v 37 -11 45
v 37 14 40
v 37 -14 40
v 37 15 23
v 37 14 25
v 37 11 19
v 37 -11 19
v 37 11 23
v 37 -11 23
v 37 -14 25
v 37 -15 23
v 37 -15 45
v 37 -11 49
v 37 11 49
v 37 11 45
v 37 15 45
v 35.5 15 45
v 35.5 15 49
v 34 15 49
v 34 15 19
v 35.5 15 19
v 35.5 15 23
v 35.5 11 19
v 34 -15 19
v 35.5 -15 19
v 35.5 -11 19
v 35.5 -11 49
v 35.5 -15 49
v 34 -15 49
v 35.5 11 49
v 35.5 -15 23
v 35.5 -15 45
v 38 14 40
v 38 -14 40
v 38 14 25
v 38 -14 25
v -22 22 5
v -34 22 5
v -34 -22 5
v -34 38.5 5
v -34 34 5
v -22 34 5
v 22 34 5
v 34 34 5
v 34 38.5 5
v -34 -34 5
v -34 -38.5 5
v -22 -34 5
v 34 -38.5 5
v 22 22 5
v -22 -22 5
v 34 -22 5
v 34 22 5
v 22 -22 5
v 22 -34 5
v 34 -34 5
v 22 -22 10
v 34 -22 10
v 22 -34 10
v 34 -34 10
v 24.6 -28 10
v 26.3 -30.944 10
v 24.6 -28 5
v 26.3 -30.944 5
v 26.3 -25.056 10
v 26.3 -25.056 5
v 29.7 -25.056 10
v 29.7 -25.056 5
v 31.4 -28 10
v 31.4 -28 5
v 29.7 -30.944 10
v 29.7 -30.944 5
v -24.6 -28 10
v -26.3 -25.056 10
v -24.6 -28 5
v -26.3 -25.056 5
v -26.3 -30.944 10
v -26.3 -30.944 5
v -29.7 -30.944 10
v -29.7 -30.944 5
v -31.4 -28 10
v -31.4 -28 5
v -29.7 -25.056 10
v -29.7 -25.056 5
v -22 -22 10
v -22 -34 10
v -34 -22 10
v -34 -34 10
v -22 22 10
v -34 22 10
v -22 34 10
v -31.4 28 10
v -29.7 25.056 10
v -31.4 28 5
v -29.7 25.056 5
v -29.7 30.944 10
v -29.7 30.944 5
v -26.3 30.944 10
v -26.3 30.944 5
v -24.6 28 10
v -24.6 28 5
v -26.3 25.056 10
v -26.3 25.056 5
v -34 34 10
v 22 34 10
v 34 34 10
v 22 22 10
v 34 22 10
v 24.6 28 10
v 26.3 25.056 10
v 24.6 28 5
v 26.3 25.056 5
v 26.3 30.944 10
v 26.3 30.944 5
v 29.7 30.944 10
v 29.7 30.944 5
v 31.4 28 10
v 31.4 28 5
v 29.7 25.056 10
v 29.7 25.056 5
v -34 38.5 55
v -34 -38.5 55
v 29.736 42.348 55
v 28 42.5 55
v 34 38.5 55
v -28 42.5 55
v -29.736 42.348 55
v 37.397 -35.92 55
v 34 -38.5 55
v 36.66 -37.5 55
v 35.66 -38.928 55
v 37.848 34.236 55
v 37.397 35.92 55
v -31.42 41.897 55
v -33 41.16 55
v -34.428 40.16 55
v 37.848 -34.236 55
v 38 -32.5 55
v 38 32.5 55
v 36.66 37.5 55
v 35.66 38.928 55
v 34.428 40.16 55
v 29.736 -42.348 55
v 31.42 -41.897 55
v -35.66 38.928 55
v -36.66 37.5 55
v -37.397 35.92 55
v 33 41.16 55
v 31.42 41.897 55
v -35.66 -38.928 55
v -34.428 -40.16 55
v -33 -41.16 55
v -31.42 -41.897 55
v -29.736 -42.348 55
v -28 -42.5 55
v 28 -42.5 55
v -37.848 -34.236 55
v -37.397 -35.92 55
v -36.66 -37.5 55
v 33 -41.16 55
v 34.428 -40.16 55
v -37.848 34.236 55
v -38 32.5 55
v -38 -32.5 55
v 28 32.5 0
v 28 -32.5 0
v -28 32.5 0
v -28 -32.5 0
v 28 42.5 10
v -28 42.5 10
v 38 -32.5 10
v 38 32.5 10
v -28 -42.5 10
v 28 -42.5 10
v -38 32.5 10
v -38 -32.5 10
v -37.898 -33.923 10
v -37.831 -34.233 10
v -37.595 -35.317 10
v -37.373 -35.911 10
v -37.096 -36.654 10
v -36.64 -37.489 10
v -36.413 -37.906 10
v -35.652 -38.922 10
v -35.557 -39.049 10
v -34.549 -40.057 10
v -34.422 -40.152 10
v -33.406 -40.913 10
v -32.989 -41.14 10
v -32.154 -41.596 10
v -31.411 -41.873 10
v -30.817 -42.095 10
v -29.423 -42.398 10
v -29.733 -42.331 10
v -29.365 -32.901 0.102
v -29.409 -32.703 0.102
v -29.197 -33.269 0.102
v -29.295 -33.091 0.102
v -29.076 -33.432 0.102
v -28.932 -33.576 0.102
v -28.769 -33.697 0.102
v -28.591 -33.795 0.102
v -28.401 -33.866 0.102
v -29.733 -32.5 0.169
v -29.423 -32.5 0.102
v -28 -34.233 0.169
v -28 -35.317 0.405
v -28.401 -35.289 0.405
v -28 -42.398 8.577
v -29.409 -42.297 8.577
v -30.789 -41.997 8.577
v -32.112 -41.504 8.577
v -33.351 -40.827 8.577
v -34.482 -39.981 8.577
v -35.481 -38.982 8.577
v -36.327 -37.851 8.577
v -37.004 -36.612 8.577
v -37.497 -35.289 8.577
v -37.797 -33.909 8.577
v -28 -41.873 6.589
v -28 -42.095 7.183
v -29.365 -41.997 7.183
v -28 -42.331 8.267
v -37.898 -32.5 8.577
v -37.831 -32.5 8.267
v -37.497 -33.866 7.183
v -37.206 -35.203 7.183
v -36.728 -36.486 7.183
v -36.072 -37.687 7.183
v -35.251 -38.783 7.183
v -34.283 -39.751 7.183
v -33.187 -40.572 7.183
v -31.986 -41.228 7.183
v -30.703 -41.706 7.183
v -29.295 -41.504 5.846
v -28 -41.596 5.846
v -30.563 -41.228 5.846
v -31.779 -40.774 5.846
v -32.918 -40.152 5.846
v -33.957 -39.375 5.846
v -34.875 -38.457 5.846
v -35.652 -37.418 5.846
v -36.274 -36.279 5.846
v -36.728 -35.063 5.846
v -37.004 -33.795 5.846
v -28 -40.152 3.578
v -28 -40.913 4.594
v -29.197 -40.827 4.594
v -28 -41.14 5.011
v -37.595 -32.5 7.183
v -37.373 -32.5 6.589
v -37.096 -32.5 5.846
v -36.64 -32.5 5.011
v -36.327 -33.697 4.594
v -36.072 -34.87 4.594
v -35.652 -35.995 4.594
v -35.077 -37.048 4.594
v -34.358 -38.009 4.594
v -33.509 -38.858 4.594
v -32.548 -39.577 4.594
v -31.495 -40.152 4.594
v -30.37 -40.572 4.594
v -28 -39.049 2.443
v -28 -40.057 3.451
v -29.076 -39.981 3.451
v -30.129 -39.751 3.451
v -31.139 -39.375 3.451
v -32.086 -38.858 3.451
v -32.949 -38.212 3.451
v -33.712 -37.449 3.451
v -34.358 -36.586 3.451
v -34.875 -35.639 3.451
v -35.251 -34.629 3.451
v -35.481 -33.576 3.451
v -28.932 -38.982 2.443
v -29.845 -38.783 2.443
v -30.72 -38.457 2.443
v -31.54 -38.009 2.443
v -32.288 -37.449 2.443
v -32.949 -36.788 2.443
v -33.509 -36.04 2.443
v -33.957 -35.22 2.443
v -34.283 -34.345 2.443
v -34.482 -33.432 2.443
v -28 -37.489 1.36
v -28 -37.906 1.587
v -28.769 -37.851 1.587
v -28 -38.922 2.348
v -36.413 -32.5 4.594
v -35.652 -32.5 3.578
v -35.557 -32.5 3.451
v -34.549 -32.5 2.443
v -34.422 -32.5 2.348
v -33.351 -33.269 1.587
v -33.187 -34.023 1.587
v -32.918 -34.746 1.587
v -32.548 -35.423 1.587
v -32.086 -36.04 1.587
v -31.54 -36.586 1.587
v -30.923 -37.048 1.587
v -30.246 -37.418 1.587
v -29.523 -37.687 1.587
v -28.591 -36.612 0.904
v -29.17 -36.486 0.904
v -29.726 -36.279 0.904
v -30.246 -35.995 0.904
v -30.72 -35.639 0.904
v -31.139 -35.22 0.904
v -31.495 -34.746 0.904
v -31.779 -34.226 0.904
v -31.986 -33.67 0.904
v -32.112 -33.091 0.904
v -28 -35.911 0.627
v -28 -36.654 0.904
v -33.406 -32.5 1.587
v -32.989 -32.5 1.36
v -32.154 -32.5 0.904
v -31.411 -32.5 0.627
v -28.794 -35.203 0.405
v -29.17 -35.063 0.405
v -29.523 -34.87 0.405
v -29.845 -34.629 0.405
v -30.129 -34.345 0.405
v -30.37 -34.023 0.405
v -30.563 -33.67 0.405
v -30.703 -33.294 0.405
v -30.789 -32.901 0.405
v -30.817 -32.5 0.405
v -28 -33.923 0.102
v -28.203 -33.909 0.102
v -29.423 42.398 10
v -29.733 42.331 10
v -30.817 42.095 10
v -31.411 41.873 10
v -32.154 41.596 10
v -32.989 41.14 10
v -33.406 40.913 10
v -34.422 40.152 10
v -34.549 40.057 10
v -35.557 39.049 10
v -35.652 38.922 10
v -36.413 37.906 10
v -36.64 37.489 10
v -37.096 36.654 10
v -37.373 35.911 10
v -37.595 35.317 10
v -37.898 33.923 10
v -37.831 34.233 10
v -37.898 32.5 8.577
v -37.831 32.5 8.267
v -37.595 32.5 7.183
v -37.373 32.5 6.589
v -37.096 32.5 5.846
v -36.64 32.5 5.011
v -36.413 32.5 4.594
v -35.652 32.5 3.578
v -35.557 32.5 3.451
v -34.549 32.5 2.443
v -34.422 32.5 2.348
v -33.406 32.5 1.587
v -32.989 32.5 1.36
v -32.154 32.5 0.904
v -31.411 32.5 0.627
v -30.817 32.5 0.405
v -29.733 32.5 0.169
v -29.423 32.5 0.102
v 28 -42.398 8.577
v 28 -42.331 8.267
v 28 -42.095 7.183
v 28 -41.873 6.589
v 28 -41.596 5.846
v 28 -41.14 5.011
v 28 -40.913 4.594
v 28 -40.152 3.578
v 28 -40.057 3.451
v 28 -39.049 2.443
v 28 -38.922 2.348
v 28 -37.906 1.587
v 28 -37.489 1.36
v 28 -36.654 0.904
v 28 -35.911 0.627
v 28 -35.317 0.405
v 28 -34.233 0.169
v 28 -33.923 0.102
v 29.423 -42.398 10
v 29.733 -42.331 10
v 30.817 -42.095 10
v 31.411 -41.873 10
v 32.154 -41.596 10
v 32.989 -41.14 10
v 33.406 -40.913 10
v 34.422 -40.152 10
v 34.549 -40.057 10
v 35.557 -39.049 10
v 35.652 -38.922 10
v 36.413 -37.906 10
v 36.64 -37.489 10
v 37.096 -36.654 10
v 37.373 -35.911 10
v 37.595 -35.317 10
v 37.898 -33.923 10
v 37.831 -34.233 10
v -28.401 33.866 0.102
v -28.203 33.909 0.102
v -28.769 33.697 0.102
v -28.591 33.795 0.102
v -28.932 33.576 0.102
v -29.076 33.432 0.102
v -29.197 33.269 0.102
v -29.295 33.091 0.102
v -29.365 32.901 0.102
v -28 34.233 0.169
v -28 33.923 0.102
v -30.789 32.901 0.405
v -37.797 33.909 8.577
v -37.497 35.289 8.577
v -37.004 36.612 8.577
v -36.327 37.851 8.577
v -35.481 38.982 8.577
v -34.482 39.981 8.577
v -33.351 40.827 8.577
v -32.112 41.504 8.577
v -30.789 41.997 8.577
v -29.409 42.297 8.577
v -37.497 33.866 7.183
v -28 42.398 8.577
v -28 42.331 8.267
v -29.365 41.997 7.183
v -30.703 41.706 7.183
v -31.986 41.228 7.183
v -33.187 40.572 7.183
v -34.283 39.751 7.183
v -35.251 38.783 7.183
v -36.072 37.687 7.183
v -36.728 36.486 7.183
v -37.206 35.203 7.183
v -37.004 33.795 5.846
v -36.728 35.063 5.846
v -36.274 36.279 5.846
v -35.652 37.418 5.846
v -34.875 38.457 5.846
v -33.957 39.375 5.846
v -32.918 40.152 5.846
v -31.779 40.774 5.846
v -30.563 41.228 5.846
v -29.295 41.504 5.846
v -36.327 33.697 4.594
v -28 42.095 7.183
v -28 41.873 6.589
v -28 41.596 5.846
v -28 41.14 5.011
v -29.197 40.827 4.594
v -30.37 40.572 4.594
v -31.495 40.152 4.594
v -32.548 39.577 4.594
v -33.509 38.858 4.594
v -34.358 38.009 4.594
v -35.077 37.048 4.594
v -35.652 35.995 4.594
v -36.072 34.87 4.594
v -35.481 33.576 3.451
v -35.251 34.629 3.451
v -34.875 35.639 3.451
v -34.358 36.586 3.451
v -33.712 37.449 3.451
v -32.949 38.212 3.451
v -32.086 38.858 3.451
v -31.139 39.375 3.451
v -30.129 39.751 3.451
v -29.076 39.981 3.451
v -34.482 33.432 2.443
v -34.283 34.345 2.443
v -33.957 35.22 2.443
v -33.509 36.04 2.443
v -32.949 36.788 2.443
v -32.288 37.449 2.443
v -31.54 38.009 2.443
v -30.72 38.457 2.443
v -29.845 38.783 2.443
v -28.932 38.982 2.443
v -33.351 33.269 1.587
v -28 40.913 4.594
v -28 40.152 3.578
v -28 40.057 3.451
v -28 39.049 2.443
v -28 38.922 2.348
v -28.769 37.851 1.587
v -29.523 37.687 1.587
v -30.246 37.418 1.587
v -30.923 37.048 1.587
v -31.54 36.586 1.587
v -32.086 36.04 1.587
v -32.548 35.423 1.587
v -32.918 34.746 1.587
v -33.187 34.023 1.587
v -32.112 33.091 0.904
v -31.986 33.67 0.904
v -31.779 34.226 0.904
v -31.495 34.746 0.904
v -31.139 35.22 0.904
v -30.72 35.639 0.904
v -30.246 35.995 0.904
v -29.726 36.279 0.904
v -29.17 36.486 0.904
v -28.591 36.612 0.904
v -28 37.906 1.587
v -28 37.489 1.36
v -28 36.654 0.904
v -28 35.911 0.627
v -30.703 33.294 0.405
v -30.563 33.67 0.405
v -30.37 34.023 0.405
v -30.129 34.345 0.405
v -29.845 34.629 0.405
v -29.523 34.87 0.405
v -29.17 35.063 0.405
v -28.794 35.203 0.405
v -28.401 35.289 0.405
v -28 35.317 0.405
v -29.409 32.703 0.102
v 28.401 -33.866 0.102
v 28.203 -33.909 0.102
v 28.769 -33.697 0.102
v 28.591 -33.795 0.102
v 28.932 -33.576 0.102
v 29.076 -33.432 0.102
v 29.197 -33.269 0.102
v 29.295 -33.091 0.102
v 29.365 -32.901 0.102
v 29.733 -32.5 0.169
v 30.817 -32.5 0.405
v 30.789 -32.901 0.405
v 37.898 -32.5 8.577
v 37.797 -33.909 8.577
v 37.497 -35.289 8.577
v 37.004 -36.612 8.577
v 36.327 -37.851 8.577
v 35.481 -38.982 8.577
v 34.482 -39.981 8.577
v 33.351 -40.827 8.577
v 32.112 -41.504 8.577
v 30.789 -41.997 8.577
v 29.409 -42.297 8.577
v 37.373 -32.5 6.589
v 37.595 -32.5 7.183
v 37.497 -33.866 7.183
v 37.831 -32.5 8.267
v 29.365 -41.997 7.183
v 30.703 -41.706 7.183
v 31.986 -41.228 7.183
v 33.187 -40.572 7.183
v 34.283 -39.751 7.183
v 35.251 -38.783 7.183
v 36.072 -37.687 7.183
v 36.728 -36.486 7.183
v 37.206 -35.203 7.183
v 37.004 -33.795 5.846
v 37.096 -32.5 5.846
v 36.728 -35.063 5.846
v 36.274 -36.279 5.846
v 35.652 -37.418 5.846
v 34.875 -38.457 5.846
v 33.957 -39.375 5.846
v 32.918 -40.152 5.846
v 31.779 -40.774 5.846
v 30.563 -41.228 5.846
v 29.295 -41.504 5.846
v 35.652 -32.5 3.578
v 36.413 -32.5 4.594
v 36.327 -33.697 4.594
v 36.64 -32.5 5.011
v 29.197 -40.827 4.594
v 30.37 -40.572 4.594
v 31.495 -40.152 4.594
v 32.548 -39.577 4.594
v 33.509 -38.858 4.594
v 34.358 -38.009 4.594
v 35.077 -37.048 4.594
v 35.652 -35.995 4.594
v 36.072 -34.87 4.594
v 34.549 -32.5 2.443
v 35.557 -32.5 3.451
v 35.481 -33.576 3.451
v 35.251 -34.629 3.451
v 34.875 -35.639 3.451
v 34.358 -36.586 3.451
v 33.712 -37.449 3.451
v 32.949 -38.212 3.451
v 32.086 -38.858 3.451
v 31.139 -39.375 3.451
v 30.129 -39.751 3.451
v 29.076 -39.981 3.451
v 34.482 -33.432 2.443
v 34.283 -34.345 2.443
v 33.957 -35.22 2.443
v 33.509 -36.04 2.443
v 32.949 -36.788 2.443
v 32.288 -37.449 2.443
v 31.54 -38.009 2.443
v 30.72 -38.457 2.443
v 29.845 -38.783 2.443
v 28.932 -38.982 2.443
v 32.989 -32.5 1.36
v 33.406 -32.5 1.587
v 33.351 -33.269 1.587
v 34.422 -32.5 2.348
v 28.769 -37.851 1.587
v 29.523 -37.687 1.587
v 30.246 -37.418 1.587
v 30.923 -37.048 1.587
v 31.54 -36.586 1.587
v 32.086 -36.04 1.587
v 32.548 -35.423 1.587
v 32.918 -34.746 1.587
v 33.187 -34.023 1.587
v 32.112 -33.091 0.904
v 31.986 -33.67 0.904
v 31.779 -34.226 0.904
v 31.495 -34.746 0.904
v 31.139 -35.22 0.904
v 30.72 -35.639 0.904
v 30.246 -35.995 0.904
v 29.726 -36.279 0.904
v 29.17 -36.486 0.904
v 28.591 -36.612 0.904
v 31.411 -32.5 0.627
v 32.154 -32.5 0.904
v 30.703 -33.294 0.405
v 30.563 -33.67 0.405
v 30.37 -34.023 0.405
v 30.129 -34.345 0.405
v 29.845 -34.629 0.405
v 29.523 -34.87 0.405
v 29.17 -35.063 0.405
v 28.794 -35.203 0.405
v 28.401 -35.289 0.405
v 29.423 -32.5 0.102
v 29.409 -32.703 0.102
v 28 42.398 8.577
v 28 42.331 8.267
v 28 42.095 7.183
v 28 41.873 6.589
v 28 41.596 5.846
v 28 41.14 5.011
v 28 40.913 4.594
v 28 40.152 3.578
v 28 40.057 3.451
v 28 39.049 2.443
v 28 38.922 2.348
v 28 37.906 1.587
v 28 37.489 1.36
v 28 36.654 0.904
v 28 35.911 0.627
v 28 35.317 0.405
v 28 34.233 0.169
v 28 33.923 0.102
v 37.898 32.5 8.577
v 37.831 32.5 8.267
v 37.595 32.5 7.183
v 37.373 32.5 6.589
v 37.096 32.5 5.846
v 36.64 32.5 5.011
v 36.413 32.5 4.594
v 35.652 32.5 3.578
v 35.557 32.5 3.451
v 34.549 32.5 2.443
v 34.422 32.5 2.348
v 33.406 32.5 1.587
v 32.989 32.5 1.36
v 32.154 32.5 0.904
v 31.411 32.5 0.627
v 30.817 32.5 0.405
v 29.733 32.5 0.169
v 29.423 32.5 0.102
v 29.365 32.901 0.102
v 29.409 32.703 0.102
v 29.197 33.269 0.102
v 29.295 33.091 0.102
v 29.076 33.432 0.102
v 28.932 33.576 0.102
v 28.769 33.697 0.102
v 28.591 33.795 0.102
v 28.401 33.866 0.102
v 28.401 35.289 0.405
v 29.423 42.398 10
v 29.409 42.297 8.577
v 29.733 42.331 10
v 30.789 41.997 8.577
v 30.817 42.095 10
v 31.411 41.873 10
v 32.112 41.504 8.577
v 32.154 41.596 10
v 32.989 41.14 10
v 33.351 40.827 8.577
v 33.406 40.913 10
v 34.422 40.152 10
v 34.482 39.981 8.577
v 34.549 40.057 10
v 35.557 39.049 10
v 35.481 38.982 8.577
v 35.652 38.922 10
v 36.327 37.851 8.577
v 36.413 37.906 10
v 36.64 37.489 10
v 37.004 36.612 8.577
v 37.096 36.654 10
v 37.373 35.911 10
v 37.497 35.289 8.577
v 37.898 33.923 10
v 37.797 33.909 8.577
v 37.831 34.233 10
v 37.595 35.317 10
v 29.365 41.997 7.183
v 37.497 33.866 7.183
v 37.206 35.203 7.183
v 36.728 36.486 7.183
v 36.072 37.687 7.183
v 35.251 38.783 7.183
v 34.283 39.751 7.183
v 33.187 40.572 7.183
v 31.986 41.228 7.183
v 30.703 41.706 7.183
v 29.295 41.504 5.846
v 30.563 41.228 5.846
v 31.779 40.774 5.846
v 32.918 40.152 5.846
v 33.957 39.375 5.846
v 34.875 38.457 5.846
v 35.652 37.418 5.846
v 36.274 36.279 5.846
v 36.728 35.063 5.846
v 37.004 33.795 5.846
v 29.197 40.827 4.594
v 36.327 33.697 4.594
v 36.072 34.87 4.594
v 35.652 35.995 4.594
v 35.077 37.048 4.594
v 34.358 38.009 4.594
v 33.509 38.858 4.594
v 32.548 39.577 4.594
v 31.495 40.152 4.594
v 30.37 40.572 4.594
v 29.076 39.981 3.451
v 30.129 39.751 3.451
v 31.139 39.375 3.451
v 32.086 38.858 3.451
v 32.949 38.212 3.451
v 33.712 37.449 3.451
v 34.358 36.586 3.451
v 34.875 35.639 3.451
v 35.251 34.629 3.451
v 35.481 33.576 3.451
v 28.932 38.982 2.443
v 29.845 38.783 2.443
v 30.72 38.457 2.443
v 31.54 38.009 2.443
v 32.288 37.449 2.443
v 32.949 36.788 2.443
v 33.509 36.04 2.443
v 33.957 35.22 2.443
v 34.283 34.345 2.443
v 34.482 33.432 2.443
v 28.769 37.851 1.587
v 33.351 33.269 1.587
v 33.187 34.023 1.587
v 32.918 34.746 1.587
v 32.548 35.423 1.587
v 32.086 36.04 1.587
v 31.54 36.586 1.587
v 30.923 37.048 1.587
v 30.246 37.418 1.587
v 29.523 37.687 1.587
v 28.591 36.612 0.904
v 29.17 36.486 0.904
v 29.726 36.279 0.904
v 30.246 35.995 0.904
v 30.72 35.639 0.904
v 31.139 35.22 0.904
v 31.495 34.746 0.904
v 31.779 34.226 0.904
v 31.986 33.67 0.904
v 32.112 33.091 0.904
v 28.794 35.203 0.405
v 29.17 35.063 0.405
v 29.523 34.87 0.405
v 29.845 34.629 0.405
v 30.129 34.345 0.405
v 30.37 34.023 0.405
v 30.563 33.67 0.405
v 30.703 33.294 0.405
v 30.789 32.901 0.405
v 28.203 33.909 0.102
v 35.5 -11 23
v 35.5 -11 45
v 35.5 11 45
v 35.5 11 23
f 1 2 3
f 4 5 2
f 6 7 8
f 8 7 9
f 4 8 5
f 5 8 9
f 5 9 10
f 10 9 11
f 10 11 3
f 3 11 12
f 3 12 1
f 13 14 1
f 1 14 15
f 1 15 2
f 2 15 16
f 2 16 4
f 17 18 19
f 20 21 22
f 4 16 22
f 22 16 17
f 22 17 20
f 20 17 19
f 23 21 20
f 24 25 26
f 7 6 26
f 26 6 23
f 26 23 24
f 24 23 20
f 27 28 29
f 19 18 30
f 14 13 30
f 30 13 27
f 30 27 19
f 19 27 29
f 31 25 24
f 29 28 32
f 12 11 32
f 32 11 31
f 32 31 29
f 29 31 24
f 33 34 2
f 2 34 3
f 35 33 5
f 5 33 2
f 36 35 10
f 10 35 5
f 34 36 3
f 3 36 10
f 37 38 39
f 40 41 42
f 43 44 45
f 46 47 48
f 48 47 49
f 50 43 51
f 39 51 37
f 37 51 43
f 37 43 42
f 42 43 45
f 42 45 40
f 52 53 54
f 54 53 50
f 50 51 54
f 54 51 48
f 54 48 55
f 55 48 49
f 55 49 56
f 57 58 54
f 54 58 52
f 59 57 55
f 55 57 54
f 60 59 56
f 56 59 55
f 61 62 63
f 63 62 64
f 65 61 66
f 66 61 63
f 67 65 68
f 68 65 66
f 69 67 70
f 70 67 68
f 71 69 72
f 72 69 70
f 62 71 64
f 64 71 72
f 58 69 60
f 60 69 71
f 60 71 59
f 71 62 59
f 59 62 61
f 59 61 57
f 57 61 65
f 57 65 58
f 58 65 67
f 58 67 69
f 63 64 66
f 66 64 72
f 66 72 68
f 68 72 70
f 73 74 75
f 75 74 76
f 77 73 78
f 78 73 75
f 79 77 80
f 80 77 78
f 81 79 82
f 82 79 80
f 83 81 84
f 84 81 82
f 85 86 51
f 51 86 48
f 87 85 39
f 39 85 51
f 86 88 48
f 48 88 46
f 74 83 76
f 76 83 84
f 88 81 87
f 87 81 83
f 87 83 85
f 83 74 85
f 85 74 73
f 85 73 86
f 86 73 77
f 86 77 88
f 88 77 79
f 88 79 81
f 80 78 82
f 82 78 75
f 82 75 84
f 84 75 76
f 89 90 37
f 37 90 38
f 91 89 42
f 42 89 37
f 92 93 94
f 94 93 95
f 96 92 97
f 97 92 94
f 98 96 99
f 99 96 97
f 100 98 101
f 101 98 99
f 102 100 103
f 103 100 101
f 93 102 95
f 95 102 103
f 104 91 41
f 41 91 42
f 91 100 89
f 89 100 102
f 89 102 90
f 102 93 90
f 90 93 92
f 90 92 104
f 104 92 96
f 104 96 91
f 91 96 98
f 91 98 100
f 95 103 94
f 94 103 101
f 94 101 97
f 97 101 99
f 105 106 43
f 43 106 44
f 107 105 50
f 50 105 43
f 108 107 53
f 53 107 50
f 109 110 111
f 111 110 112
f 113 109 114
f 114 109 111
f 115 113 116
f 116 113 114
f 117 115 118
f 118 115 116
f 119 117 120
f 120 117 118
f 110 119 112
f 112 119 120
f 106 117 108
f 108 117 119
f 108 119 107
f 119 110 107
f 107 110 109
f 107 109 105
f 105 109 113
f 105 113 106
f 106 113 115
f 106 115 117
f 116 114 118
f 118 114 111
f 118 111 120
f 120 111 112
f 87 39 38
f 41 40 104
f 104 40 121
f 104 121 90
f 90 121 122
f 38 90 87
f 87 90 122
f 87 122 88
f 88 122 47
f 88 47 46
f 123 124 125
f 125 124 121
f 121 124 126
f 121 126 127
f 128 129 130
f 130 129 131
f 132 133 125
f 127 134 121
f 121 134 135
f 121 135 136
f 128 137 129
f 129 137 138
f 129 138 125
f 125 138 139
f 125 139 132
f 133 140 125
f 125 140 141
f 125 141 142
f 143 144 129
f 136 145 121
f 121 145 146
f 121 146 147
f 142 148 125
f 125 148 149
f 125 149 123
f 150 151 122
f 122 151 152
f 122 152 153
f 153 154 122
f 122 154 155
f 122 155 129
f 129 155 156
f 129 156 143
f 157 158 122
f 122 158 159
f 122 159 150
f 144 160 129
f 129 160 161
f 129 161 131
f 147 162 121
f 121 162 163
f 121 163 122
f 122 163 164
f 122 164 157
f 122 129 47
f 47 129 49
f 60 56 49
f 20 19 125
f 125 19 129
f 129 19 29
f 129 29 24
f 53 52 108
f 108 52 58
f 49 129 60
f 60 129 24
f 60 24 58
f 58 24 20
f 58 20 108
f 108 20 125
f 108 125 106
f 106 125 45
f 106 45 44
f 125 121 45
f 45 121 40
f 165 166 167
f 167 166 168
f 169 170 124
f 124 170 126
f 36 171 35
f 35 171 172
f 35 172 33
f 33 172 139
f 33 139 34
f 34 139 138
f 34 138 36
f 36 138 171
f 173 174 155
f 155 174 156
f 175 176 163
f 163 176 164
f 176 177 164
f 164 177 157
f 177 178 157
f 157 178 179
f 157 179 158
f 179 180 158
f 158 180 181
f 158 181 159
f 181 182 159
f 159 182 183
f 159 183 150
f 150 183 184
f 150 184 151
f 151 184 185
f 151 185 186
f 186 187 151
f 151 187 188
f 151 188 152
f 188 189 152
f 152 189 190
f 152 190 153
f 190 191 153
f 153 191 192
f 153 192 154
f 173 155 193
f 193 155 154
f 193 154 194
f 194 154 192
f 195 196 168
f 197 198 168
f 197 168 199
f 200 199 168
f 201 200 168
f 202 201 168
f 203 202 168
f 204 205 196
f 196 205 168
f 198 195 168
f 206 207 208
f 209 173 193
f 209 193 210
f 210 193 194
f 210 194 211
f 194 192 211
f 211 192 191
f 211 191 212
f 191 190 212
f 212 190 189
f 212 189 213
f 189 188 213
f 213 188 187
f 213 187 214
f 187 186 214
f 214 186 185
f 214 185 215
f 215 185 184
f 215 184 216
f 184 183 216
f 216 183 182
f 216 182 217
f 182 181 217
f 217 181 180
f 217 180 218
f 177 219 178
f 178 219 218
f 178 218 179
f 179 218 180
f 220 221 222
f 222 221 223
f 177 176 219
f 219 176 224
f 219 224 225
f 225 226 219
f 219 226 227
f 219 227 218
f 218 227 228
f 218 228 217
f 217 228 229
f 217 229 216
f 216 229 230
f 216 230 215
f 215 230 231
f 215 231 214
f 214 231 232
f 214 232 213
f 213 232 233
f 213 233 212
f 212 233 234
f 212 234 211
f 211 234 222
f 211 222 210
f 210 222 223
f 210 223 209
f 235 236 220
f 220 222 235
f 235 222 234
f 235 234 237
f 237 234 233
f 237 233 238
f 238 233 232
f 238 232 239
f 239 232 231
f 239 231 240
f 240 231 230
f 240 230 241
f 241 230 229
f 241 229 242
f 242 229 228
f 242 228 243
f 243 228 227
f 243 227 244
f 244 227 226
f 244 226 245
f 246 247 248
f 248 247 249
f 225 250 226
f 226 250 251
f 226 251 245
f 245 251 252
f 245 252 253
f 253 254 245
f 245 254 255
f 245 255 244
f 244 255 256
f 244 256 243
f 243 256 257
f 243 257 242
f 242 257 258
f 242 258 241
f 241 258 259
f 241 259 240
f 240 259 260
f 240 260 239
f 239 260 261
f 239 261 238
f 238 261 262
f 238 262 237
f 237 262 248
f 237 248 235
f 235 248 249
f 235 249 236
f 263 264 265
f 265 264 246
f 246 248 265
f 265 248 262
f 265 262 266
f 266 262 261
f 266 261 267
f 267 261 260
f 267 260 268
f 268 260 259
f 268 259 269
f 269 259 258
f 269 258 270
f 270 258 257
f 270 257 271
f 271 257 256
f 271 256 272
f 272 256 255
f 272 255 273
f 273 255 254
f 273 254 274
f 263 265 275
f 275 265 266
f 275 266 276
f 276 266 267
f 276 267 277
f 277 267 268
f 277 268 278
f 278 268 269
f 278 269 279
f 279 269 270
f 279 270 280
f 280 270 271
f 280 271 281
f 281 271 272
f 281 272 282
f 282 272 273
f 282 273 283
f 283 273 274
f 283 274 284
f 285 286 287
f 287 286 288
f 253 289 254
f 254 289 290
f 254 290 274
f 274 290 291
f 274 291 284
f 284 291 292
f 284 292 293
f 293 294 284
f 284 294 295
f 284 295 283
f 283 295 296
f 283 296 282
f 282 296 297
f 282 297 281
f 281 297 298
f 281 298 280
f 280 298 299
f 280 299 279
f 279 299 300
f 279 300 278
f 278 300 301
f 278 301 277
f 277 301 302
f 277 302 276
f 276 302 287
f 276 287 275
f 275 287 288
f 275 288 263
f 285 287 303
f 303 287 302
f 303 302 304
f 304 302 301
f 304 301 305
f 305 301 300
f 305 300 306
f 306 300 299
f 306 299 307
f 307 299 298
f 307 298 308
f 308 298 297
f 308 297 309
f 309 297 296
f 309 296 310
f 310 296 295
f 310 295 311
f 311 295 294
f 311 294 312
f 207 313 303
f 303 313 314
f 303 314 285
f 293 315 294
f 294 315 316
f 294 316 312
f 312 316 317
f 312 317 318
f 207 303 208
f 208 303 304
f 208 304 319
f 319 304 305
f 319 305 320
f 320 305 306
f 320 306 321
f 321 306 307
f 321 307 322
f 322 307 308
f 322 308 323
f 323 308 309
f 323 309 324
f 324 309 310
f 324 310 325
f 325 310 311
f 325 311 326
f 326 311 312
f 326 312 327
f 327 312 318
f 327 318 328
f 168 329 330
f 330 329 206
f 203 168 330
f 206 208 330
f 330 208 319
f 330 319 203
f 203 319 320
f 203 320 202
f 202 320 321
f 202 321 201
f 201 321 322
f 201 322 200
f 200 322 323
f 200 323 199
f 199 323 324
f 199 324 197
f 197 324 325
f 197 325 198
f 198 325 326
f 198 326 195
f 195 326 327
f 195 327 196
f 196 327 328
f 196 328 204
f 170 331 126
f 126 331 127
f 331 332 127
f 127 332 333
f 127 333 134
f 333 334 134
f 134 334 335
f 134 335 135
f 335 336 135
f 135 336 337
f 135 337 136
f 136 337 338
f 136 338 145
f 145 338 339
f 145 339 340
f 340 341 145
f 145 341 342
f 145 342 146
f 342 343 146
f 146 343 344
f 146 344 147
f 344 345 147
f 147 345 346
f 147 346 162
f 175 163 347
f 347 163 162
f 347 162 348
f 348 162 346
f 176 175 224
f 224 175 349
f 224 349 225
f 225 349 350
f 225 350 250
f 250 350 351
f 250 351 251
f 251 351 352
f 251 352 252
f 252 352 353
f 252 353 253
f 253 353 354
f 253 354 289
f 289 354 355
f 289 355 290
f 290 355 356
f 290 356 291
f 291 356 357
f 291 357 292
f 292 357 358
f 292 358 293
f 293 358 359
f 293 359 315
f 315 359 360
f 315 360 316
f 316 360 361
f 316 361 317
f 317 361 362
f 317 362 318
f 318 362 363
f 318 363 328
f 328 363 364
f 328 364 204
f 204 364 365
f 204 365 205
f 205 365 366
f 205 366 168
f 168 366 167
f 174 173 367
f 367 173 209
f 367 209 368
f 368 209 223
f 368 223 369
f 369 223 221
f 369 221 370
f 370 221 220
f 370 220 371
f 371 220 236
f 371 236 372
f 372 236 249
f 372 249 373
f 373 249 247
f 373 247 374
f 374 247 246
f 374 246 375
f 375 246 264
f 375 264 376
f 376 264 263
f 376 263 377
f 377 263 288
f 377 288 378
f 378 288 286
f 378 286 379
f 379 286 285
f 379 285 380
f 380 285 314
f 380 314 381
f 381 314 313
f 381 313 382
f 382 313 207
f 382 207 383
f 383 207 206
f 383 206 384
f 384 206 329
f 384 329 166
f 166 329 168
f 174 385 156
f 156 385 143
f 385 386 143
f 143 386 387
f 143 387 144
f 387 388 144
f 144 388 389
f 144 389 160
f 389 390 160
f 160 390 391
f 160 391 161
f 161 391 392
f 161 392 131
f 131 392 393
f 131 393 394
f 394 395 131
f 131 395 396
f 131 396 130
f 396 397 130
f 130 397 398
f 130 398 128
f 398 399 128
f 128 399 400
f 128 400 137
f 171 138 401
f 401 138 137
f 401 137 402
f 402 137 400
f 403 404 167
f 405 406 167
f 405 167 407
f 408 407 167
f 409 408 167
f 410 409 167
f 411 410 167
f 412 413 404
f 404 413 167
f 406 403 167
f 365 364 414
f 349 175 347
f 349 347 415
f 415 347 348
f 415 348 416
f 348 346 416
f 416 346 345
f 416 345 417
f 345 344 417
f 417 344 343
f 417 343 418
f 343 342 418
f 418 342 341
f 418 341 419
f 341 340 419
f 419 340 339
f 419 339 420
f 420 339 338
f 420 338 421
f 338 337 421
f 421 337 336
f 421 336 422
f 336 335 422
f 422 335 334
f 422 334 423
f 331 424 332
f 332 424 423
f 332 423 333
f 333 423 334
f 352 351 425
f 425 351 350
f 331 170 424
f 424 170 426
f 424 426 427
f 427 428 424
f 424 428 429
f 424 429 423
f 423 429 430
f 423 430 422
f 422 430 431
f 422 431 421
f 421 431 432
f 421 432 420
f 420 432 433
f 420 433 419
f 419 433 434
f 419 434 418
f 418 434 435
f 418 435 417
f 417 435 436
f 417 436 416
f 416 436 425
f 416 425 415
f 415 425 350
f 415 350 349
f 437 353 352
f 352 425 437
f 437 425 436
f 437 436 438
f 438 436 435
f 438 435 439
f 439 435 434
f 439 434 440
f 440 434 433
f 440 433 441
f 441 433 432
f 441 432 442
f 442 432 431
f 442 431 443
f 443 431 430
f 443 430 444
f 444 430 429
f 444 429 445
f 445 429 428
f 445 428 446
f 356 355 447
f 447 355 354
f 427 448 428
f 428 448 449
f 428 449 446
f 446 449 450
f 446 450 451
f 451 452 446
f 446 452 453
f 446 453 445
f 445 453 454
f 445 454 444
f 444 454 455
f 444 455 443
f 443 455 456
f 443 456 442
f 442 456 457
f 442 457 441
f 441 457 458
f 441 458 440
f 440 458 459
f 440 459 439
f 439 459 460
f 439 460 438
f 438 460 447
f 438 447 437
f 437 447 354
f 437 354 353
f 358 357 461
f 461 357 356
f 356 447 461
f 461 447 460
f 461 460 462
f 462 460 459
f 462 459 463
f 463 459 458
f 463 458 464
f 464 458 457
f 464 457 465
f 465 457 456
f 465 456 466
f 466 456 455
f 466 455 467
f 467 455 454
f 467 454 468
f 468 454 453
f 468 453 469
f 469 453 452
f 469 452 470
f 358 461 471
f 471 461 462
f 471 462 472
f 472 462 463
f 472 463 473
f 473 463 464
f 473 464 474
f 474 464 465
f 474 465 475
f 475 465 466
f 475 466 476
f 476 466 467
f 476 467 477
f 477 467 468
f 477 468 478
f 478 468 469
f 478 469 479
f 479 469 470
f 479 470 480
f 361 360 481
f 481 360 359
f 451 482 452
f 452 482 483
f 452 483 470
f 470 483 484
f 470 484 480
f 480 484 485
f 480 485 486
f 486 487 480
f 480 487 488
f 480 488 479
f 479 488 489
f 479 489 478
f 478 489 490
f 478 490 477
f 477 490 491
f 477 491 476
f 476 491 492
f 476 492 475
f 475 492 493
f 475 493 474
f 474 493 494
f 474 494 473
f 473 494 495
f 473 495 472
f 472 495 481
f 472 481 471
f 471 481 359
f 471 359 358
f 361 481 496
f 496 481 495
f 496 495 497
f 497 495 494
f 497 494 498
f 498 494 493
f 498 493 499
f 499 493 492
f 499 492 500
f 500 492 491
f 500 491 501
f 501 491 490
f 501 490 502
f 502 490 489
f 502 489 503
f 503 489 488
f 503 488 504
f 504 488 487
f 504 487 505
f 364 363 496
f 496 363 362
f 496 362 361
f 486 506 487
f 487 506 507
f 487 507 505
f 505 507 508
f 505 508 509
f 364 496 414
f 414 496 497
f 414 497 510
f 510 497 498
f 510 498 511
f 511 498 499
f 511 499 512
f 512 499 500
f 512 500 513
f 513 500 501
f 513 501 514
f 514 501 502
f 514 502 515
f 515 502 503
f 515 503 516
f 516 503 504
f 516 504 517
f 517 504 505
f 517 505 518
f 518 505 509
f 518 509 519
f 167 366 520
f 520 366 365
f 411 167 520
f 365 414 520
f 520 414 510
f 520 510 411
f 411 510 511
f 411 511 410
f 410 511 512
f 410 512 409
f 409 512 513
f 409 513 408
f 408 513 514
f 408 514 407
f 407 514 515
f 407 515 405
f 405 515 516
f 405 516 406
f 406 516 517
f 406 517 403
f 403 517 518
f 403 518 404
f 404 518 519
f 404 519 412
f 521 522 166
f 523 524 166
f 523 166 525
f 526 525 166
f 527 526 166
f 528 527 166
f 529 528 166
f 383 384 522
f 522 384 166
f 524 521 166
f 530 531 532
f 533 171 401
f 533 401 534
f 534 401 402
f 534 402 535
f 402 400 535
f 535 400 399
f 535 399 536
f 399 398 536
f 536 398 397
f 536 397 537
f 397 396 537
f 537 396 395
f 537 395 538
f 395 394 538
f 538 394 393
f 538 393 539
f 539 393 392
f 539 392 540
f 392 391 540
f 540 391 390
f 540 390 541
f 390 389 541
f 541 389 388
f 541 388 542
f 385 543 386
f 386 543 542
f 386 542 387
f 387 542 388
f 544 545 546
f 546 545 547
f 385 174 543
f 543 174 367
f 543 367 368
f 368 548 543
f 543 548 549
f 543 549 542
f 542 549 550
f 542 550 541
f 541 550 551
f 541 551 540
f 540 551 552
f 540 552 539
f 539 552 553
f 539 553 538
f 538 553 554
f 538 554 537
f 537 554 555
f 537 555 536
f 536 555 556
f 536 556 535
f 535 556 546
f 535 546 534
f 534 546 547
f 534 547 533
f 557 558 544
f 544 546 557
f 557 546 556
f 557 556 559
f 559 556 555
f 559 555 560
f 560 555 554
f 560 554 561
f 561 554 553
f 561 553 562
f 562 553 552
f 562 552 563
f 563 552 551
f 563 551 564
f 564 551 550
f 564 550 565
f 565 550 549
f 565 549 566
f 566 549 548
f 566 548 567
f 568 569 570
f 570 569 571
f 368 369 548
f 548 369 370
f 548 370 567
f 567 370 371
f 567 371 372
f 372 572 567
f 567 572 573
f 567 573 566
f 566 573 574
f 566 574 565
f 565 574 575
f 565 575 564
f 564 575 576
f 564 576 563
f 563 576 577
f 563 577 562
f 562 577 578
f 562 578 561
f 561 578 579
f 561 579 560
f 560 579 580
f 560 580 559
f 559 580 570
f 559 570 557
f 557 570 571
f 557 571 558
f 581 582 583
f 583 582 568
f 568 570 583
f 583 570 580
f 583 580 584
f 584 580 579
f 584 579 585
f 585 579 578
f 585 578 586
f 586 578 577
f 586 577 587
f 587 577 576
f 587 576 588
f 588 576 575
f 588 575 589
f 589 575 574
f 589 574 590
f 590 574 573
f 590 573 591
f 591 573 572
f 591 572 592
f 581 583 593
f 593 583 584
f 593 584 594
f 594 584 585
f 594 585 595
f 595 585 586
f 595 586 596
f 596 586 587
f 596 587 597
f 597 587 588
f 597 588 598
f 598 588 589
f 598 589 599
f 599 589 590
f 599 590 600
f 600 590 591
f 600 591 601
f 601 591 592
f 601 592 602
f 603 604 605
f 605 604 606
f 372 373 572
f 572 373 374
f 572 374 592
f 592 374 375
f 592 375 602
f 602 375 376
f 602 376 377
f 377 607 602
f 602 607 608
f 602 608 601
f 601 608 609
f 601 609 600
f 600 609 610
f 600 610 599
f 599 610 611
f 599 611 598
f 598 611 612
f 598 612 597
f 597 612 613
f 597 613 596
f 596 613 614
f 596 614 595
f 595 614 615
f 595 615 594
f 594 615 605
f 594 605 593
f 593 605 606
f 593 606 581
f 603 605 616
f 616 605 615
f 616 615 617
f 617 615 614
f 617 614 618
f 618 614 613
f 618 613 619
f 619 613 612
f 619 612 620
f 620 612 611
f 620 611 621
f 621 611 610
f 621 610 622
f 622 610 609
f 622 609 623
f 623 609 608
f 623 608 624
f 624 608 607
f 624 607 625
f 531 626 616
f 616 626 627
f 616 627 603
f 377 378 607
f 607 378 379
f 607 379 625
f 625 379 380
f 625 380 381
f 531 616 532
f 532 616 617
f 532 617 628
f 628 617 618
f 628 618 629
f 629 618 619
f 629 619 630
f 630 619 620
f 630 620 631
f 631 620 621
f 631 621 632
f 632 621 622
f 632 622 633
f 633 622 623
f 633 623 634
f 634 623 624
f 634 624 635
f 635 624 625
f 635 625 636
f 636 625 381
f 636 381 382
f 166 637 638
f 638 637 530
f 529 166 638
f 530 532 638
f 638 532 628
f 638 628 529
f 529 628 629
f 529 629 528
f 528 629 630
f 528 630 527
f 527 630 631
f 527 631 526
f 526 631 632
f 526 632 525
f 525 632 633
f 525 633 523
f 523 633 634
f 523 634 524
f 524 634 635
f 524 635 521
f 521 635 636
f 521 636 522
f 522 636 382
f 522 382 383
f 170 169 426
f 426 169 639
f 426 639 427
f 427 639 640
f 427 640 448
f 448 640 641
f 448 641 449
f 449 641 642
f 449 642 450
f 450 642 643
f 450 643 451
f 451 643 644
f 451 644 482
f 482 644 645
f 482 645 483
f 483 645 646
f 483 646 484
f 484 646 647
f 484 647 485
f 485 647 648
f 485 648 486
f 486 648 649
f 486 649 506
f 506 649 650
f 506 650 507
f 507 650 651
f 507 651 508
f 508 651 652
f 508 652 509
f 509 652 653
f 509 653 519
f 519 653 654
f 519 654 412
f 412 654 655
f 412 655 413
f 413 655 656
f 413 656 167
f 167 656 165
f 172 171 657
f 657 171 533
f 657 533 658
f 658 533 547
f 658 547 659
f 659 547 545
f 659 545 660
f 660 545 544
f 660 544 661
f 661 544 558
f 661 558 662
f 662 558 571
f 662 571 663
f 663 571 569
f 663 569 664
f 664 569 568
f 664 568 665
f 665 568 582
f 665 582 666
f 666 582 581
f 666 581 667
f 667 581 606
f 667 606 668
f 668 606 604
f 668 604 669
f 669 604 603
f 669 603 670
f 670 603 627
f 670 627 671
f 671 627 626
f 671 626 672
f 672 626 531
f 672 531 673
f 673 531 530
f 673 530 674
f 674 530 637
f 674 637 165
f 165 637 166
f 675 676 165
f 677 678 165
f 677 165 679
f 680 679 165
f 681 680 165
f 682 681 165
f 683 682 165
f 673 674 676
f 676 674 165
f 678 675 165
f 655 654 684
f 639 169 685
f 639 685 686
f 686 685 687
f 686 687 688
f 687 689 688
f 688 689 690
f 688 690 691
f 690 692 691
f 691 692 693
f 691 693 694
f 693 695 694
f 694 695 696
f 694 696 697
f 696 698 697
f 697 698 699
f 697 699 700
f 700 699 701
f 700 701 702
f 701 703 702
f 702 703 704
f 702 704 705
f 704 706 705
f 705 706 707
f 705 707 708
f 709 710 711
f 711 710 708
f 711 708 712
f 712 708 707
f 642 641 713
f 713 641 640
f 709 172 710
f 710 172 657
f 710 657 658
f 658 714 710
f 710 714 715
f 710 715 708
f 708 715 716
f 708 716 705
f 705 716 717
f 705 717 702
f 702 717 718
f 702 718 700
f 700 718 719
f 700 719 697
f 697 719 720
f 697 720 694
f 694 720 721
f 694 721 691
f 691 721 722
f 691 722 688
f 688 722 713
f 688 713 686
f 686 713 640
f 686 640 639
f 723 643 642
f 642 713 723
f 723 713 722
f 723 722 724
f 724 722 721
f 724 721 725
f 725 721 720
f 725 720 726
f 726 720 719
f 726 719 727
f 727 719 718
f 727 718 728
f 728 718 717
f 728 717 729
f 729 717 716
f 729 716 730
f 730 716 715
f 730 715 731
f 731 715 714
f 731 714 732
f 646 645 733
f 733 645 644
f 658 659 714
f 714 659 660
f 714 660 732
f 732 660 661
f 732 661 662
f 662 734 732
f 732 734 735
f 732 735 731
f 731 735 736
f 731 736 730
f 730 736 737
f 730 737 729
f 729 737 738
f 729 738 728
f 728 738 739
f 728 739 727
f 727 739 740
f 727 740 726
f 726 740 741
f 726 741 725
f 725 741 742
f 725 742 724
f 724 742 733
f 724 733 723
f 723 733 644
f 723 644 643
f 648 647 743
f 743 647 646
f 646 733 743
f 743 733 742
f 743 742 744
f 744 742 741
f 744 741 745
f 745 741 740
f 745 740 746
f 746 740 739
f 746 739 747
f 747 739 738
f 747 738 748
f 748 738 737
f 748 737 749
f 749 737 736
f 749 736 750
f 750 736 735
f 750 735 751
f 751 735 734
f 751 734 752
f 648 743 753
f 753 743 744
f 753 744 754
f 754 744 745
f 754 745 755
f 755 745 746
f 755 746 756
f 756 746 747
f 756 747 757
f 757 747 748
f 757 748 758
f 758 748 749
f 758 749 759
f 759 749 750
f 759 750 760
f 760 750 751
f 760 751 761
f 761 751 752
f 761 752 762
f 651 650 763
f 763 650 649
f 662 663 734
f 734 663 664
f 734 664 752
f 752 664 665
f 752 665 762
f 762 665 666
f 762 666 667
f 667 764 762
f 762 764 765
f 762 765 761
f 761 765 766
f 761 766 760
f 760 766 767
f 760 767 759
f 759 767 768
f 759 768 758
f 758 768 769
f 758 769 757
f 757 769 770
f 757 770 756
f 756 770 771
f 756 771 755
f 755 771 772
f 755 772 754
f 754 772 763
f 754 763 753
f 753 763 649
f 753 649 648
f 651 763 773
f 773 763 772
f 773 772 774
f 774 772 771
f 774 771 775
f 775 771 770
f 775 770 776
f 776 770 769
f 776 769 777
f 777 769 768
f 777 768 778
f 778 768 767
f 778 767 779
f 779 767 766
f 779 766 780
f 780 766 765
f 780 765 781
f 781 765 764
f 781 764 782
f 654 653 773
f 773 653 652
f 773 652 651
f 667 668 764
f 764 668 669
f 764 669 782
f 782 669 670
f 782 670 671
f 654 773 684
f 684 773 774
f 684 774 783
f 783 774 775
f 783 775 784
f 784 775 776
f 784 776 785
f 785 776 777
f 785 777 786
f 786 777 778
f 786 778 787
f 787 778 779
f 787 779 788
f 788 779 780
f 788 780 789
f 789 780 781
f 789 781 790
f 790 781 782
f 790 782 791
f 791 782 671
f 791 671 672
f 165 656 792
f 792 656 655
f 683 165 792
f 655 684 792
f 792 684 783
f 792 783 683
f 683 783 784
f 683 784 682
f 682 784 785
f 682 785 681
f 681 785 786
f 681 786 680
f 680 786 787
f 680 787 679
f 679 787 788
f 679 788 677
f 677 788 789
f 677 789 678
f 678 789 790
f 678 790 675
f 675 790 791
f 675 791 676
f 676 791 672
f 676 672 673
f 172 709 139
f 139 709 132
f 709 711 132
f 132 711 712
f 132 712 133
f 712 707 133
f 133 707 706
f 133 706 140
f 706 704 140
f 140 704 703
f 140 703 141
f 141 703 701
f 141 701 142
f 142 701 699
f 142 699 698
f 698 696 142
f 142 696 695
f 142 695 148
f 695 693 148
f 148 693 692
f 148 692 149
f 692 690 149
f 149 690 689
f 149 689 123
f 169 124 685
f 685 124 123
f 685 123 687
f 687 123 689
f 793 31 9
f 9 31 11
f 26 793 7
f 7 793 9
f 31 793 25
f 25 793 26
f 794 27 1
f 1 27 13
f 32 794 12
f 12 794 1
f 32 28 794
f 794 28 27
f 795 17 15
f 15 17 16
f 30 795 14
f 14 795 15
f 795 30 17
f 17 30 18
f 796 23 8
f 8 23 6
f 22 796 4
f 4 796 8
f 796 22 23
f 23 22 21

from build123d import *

# Parameters (mm, degrees)
CROQUIS1_W              = 76
CROQUIS1_H              = 85
SALIENTE_EXTRUIR1_DEPTH = 5
SALIENTE_EXTRUIR5_DEPTH = 5
CROQUIS6_W              = 76
CROQUIS6_H              = 85
CROQUIS6_W_2            = 68
CROQUIS6_H_2            = 77
SALIENTE_EXTRUIR6_DEPTH = 50
REDONDEO1_R             = 10
CROQUIS7_W              = 15
CROQUIS7_H              = 28
CORTAR_EXTRUIR2_DEPTH   = 5
CROQUIS8_W              = 30
CROQUIS8_H              = 30
CORTAR_EXTRUIR3_DEPTH   = 3
CROQUIS10_W             = 4
CROQUIS10_H             = 4
SALIENTE_EXTRUIR7_DEPTH = 1.5


with BuildPart() as part:
    # Croquis1 → Saliente-Extruir1 (new body)
    with BuildSketch(Plane.XY):
        Rectangle(CROQUIS1_W, CROQUIS1_H)
    extrude(amount=SALIENTE_EXTRUIR1_DEPTH)

    # Croquis5 → Saliente-Extruir5 (add)
    with BuildSketch(Plane.XY.offset(5)):
        Polygon((25.754700538, -30), (22, -30), (22, -34), (34, -34), (34, -22), (30, -22), (30, -25.575128869), (31.4, -28), (29.7, -30.944486373), (26.3, -30.944486373), align=None)
        Polygon((22, -22), (22, -30), (25.754700538, -30), (24.6, -28), (26.3, -25.055513627), (29.7, -25.055513627), (30, -25.575128869), (30, -22), align=None)
        Polygon((-22, -30), (-25.754700538, -30), (-26.3, -30.944486373), (-29.7, -30.944486373), (-31.4, -28), (-30, -25.575128869), (-30, -22), (-34, -22), (-34, -34), (-22, -34), align=None)
        Polygon((-24.6, -28), (-25.754700538, -30), (-22, -30), (-22, -22), (-30, -22), (-30, -25.575128869), (-29.7, -25.055513627), (-26.3, -25.055513627), align=None)
        Polygon((-30, 25.575128869), (-30, 22), (-22, 22), (-22, 30), (-25.754700538, 30), (-24.6, 28), (-26.3, 25.055513627), (-29.7, 25.055513627), align=None)
        Polygon((-34, 22), (-30, 22), (-30, 25.575128869), (-31.4, 28), (-29.7, 30.944486373), (-26.3, 30.944486373), (-25.754700538, 30), (-22, 30), (-22, 34), (-34, 34), align=None)
        Polygon((30, 25.575128869), (30, 22), (34, 22), (34, 34), (22, 34), (22, 30), (25.754700538, 30), (26.3, 30.944486373), (29.7, 30.944486373), (31.4, 28), align=None)
        Polygon((22, 22), (30, 22), (30, 25.575128869), (29.7, 25.055513627), (26.3, 25.055513627), (24.6, 28), (25.754700538, 30), (22, 30), align=None)
    extrude(amount=SALIENTE_EXTRUIR5_DEPTH)

    # Croquis6 → Saliente-Extruir6 (add)
    with BuildSketch(Plane.XY.offset(5)):
        Rectangle(CROQUIS6_W, CROQUIS6_H)
        Rectangle(CROQUIS6_W_2, CROQUIS6_H_2, mode=Mode.SUBTRACT)
    extrude(amount=SALIENTE_EXTRUIR6_DEPTH)

    # Redondeo1
    redondeo1_edges = [part.edges().sort_by_distance(p)[0] for p in [
        (0, 42.5, 0),
        (38, 0, 0),
        (0, -42.5, 0),
        (-38, 0, 0),
        (-38, 42.5, 27.5),
        (38, 42.5, 27.5),
        (38, -42.5, 27.5),
        (-38, -42.5, 27.5),
    ]]
    fillet(redondeo1_edges, radius=REDONDEO1_R)

    # Croquis7 → Cortar-Extruir2 (cut)
    with BuildSketch(Plane(origin=(38, 0, 0), x_dir=(0, 0, -1), z_dir=(1, 0, 0))):
        with Locations((-32.5, 0)):
            Rectangle(CROQUIS7_W, CROQUIS7_H)
    extrude(amount=-CORTAR_EXTRUIR2_DEPTH, mode=Mode.SUBTRACT)

    # Croquis8 → Cortar-Extruir3 (cut)
    with BuildSketch(Plane.ZY.offset(-34)):
        with Locations((34, 0)):
            Rectangle(CROQUIS8_W, CROQUIS8_H)
    extrude(amount=-CORTAR_EXTRUIR3_DEPTH, mode=Mode.SUBTRACT)

    # Croquis10 → Saliente-Extruir7 (add)
    with BuildSketch(Plane.ZY.offset(-37)):
        with Locations((21, -13)):
            Rectangle(CROQUIS10_W, CROQUIS10_H)
        with Locations((47, -13)):
            Rectangle(CROQUIS10_W, CROQUIS10_H)
        with Locations((47, 13)):
            Rectangle(CROQUIS10_W, CROQUIS10_H)
        with Locations((21, 13)):
            Rectangle(CROQUIS10_W, CROQUIS10_H)
    extrude(amount=SALIENTE_EXTRUIR7_DEPTH)


solid = part.part
